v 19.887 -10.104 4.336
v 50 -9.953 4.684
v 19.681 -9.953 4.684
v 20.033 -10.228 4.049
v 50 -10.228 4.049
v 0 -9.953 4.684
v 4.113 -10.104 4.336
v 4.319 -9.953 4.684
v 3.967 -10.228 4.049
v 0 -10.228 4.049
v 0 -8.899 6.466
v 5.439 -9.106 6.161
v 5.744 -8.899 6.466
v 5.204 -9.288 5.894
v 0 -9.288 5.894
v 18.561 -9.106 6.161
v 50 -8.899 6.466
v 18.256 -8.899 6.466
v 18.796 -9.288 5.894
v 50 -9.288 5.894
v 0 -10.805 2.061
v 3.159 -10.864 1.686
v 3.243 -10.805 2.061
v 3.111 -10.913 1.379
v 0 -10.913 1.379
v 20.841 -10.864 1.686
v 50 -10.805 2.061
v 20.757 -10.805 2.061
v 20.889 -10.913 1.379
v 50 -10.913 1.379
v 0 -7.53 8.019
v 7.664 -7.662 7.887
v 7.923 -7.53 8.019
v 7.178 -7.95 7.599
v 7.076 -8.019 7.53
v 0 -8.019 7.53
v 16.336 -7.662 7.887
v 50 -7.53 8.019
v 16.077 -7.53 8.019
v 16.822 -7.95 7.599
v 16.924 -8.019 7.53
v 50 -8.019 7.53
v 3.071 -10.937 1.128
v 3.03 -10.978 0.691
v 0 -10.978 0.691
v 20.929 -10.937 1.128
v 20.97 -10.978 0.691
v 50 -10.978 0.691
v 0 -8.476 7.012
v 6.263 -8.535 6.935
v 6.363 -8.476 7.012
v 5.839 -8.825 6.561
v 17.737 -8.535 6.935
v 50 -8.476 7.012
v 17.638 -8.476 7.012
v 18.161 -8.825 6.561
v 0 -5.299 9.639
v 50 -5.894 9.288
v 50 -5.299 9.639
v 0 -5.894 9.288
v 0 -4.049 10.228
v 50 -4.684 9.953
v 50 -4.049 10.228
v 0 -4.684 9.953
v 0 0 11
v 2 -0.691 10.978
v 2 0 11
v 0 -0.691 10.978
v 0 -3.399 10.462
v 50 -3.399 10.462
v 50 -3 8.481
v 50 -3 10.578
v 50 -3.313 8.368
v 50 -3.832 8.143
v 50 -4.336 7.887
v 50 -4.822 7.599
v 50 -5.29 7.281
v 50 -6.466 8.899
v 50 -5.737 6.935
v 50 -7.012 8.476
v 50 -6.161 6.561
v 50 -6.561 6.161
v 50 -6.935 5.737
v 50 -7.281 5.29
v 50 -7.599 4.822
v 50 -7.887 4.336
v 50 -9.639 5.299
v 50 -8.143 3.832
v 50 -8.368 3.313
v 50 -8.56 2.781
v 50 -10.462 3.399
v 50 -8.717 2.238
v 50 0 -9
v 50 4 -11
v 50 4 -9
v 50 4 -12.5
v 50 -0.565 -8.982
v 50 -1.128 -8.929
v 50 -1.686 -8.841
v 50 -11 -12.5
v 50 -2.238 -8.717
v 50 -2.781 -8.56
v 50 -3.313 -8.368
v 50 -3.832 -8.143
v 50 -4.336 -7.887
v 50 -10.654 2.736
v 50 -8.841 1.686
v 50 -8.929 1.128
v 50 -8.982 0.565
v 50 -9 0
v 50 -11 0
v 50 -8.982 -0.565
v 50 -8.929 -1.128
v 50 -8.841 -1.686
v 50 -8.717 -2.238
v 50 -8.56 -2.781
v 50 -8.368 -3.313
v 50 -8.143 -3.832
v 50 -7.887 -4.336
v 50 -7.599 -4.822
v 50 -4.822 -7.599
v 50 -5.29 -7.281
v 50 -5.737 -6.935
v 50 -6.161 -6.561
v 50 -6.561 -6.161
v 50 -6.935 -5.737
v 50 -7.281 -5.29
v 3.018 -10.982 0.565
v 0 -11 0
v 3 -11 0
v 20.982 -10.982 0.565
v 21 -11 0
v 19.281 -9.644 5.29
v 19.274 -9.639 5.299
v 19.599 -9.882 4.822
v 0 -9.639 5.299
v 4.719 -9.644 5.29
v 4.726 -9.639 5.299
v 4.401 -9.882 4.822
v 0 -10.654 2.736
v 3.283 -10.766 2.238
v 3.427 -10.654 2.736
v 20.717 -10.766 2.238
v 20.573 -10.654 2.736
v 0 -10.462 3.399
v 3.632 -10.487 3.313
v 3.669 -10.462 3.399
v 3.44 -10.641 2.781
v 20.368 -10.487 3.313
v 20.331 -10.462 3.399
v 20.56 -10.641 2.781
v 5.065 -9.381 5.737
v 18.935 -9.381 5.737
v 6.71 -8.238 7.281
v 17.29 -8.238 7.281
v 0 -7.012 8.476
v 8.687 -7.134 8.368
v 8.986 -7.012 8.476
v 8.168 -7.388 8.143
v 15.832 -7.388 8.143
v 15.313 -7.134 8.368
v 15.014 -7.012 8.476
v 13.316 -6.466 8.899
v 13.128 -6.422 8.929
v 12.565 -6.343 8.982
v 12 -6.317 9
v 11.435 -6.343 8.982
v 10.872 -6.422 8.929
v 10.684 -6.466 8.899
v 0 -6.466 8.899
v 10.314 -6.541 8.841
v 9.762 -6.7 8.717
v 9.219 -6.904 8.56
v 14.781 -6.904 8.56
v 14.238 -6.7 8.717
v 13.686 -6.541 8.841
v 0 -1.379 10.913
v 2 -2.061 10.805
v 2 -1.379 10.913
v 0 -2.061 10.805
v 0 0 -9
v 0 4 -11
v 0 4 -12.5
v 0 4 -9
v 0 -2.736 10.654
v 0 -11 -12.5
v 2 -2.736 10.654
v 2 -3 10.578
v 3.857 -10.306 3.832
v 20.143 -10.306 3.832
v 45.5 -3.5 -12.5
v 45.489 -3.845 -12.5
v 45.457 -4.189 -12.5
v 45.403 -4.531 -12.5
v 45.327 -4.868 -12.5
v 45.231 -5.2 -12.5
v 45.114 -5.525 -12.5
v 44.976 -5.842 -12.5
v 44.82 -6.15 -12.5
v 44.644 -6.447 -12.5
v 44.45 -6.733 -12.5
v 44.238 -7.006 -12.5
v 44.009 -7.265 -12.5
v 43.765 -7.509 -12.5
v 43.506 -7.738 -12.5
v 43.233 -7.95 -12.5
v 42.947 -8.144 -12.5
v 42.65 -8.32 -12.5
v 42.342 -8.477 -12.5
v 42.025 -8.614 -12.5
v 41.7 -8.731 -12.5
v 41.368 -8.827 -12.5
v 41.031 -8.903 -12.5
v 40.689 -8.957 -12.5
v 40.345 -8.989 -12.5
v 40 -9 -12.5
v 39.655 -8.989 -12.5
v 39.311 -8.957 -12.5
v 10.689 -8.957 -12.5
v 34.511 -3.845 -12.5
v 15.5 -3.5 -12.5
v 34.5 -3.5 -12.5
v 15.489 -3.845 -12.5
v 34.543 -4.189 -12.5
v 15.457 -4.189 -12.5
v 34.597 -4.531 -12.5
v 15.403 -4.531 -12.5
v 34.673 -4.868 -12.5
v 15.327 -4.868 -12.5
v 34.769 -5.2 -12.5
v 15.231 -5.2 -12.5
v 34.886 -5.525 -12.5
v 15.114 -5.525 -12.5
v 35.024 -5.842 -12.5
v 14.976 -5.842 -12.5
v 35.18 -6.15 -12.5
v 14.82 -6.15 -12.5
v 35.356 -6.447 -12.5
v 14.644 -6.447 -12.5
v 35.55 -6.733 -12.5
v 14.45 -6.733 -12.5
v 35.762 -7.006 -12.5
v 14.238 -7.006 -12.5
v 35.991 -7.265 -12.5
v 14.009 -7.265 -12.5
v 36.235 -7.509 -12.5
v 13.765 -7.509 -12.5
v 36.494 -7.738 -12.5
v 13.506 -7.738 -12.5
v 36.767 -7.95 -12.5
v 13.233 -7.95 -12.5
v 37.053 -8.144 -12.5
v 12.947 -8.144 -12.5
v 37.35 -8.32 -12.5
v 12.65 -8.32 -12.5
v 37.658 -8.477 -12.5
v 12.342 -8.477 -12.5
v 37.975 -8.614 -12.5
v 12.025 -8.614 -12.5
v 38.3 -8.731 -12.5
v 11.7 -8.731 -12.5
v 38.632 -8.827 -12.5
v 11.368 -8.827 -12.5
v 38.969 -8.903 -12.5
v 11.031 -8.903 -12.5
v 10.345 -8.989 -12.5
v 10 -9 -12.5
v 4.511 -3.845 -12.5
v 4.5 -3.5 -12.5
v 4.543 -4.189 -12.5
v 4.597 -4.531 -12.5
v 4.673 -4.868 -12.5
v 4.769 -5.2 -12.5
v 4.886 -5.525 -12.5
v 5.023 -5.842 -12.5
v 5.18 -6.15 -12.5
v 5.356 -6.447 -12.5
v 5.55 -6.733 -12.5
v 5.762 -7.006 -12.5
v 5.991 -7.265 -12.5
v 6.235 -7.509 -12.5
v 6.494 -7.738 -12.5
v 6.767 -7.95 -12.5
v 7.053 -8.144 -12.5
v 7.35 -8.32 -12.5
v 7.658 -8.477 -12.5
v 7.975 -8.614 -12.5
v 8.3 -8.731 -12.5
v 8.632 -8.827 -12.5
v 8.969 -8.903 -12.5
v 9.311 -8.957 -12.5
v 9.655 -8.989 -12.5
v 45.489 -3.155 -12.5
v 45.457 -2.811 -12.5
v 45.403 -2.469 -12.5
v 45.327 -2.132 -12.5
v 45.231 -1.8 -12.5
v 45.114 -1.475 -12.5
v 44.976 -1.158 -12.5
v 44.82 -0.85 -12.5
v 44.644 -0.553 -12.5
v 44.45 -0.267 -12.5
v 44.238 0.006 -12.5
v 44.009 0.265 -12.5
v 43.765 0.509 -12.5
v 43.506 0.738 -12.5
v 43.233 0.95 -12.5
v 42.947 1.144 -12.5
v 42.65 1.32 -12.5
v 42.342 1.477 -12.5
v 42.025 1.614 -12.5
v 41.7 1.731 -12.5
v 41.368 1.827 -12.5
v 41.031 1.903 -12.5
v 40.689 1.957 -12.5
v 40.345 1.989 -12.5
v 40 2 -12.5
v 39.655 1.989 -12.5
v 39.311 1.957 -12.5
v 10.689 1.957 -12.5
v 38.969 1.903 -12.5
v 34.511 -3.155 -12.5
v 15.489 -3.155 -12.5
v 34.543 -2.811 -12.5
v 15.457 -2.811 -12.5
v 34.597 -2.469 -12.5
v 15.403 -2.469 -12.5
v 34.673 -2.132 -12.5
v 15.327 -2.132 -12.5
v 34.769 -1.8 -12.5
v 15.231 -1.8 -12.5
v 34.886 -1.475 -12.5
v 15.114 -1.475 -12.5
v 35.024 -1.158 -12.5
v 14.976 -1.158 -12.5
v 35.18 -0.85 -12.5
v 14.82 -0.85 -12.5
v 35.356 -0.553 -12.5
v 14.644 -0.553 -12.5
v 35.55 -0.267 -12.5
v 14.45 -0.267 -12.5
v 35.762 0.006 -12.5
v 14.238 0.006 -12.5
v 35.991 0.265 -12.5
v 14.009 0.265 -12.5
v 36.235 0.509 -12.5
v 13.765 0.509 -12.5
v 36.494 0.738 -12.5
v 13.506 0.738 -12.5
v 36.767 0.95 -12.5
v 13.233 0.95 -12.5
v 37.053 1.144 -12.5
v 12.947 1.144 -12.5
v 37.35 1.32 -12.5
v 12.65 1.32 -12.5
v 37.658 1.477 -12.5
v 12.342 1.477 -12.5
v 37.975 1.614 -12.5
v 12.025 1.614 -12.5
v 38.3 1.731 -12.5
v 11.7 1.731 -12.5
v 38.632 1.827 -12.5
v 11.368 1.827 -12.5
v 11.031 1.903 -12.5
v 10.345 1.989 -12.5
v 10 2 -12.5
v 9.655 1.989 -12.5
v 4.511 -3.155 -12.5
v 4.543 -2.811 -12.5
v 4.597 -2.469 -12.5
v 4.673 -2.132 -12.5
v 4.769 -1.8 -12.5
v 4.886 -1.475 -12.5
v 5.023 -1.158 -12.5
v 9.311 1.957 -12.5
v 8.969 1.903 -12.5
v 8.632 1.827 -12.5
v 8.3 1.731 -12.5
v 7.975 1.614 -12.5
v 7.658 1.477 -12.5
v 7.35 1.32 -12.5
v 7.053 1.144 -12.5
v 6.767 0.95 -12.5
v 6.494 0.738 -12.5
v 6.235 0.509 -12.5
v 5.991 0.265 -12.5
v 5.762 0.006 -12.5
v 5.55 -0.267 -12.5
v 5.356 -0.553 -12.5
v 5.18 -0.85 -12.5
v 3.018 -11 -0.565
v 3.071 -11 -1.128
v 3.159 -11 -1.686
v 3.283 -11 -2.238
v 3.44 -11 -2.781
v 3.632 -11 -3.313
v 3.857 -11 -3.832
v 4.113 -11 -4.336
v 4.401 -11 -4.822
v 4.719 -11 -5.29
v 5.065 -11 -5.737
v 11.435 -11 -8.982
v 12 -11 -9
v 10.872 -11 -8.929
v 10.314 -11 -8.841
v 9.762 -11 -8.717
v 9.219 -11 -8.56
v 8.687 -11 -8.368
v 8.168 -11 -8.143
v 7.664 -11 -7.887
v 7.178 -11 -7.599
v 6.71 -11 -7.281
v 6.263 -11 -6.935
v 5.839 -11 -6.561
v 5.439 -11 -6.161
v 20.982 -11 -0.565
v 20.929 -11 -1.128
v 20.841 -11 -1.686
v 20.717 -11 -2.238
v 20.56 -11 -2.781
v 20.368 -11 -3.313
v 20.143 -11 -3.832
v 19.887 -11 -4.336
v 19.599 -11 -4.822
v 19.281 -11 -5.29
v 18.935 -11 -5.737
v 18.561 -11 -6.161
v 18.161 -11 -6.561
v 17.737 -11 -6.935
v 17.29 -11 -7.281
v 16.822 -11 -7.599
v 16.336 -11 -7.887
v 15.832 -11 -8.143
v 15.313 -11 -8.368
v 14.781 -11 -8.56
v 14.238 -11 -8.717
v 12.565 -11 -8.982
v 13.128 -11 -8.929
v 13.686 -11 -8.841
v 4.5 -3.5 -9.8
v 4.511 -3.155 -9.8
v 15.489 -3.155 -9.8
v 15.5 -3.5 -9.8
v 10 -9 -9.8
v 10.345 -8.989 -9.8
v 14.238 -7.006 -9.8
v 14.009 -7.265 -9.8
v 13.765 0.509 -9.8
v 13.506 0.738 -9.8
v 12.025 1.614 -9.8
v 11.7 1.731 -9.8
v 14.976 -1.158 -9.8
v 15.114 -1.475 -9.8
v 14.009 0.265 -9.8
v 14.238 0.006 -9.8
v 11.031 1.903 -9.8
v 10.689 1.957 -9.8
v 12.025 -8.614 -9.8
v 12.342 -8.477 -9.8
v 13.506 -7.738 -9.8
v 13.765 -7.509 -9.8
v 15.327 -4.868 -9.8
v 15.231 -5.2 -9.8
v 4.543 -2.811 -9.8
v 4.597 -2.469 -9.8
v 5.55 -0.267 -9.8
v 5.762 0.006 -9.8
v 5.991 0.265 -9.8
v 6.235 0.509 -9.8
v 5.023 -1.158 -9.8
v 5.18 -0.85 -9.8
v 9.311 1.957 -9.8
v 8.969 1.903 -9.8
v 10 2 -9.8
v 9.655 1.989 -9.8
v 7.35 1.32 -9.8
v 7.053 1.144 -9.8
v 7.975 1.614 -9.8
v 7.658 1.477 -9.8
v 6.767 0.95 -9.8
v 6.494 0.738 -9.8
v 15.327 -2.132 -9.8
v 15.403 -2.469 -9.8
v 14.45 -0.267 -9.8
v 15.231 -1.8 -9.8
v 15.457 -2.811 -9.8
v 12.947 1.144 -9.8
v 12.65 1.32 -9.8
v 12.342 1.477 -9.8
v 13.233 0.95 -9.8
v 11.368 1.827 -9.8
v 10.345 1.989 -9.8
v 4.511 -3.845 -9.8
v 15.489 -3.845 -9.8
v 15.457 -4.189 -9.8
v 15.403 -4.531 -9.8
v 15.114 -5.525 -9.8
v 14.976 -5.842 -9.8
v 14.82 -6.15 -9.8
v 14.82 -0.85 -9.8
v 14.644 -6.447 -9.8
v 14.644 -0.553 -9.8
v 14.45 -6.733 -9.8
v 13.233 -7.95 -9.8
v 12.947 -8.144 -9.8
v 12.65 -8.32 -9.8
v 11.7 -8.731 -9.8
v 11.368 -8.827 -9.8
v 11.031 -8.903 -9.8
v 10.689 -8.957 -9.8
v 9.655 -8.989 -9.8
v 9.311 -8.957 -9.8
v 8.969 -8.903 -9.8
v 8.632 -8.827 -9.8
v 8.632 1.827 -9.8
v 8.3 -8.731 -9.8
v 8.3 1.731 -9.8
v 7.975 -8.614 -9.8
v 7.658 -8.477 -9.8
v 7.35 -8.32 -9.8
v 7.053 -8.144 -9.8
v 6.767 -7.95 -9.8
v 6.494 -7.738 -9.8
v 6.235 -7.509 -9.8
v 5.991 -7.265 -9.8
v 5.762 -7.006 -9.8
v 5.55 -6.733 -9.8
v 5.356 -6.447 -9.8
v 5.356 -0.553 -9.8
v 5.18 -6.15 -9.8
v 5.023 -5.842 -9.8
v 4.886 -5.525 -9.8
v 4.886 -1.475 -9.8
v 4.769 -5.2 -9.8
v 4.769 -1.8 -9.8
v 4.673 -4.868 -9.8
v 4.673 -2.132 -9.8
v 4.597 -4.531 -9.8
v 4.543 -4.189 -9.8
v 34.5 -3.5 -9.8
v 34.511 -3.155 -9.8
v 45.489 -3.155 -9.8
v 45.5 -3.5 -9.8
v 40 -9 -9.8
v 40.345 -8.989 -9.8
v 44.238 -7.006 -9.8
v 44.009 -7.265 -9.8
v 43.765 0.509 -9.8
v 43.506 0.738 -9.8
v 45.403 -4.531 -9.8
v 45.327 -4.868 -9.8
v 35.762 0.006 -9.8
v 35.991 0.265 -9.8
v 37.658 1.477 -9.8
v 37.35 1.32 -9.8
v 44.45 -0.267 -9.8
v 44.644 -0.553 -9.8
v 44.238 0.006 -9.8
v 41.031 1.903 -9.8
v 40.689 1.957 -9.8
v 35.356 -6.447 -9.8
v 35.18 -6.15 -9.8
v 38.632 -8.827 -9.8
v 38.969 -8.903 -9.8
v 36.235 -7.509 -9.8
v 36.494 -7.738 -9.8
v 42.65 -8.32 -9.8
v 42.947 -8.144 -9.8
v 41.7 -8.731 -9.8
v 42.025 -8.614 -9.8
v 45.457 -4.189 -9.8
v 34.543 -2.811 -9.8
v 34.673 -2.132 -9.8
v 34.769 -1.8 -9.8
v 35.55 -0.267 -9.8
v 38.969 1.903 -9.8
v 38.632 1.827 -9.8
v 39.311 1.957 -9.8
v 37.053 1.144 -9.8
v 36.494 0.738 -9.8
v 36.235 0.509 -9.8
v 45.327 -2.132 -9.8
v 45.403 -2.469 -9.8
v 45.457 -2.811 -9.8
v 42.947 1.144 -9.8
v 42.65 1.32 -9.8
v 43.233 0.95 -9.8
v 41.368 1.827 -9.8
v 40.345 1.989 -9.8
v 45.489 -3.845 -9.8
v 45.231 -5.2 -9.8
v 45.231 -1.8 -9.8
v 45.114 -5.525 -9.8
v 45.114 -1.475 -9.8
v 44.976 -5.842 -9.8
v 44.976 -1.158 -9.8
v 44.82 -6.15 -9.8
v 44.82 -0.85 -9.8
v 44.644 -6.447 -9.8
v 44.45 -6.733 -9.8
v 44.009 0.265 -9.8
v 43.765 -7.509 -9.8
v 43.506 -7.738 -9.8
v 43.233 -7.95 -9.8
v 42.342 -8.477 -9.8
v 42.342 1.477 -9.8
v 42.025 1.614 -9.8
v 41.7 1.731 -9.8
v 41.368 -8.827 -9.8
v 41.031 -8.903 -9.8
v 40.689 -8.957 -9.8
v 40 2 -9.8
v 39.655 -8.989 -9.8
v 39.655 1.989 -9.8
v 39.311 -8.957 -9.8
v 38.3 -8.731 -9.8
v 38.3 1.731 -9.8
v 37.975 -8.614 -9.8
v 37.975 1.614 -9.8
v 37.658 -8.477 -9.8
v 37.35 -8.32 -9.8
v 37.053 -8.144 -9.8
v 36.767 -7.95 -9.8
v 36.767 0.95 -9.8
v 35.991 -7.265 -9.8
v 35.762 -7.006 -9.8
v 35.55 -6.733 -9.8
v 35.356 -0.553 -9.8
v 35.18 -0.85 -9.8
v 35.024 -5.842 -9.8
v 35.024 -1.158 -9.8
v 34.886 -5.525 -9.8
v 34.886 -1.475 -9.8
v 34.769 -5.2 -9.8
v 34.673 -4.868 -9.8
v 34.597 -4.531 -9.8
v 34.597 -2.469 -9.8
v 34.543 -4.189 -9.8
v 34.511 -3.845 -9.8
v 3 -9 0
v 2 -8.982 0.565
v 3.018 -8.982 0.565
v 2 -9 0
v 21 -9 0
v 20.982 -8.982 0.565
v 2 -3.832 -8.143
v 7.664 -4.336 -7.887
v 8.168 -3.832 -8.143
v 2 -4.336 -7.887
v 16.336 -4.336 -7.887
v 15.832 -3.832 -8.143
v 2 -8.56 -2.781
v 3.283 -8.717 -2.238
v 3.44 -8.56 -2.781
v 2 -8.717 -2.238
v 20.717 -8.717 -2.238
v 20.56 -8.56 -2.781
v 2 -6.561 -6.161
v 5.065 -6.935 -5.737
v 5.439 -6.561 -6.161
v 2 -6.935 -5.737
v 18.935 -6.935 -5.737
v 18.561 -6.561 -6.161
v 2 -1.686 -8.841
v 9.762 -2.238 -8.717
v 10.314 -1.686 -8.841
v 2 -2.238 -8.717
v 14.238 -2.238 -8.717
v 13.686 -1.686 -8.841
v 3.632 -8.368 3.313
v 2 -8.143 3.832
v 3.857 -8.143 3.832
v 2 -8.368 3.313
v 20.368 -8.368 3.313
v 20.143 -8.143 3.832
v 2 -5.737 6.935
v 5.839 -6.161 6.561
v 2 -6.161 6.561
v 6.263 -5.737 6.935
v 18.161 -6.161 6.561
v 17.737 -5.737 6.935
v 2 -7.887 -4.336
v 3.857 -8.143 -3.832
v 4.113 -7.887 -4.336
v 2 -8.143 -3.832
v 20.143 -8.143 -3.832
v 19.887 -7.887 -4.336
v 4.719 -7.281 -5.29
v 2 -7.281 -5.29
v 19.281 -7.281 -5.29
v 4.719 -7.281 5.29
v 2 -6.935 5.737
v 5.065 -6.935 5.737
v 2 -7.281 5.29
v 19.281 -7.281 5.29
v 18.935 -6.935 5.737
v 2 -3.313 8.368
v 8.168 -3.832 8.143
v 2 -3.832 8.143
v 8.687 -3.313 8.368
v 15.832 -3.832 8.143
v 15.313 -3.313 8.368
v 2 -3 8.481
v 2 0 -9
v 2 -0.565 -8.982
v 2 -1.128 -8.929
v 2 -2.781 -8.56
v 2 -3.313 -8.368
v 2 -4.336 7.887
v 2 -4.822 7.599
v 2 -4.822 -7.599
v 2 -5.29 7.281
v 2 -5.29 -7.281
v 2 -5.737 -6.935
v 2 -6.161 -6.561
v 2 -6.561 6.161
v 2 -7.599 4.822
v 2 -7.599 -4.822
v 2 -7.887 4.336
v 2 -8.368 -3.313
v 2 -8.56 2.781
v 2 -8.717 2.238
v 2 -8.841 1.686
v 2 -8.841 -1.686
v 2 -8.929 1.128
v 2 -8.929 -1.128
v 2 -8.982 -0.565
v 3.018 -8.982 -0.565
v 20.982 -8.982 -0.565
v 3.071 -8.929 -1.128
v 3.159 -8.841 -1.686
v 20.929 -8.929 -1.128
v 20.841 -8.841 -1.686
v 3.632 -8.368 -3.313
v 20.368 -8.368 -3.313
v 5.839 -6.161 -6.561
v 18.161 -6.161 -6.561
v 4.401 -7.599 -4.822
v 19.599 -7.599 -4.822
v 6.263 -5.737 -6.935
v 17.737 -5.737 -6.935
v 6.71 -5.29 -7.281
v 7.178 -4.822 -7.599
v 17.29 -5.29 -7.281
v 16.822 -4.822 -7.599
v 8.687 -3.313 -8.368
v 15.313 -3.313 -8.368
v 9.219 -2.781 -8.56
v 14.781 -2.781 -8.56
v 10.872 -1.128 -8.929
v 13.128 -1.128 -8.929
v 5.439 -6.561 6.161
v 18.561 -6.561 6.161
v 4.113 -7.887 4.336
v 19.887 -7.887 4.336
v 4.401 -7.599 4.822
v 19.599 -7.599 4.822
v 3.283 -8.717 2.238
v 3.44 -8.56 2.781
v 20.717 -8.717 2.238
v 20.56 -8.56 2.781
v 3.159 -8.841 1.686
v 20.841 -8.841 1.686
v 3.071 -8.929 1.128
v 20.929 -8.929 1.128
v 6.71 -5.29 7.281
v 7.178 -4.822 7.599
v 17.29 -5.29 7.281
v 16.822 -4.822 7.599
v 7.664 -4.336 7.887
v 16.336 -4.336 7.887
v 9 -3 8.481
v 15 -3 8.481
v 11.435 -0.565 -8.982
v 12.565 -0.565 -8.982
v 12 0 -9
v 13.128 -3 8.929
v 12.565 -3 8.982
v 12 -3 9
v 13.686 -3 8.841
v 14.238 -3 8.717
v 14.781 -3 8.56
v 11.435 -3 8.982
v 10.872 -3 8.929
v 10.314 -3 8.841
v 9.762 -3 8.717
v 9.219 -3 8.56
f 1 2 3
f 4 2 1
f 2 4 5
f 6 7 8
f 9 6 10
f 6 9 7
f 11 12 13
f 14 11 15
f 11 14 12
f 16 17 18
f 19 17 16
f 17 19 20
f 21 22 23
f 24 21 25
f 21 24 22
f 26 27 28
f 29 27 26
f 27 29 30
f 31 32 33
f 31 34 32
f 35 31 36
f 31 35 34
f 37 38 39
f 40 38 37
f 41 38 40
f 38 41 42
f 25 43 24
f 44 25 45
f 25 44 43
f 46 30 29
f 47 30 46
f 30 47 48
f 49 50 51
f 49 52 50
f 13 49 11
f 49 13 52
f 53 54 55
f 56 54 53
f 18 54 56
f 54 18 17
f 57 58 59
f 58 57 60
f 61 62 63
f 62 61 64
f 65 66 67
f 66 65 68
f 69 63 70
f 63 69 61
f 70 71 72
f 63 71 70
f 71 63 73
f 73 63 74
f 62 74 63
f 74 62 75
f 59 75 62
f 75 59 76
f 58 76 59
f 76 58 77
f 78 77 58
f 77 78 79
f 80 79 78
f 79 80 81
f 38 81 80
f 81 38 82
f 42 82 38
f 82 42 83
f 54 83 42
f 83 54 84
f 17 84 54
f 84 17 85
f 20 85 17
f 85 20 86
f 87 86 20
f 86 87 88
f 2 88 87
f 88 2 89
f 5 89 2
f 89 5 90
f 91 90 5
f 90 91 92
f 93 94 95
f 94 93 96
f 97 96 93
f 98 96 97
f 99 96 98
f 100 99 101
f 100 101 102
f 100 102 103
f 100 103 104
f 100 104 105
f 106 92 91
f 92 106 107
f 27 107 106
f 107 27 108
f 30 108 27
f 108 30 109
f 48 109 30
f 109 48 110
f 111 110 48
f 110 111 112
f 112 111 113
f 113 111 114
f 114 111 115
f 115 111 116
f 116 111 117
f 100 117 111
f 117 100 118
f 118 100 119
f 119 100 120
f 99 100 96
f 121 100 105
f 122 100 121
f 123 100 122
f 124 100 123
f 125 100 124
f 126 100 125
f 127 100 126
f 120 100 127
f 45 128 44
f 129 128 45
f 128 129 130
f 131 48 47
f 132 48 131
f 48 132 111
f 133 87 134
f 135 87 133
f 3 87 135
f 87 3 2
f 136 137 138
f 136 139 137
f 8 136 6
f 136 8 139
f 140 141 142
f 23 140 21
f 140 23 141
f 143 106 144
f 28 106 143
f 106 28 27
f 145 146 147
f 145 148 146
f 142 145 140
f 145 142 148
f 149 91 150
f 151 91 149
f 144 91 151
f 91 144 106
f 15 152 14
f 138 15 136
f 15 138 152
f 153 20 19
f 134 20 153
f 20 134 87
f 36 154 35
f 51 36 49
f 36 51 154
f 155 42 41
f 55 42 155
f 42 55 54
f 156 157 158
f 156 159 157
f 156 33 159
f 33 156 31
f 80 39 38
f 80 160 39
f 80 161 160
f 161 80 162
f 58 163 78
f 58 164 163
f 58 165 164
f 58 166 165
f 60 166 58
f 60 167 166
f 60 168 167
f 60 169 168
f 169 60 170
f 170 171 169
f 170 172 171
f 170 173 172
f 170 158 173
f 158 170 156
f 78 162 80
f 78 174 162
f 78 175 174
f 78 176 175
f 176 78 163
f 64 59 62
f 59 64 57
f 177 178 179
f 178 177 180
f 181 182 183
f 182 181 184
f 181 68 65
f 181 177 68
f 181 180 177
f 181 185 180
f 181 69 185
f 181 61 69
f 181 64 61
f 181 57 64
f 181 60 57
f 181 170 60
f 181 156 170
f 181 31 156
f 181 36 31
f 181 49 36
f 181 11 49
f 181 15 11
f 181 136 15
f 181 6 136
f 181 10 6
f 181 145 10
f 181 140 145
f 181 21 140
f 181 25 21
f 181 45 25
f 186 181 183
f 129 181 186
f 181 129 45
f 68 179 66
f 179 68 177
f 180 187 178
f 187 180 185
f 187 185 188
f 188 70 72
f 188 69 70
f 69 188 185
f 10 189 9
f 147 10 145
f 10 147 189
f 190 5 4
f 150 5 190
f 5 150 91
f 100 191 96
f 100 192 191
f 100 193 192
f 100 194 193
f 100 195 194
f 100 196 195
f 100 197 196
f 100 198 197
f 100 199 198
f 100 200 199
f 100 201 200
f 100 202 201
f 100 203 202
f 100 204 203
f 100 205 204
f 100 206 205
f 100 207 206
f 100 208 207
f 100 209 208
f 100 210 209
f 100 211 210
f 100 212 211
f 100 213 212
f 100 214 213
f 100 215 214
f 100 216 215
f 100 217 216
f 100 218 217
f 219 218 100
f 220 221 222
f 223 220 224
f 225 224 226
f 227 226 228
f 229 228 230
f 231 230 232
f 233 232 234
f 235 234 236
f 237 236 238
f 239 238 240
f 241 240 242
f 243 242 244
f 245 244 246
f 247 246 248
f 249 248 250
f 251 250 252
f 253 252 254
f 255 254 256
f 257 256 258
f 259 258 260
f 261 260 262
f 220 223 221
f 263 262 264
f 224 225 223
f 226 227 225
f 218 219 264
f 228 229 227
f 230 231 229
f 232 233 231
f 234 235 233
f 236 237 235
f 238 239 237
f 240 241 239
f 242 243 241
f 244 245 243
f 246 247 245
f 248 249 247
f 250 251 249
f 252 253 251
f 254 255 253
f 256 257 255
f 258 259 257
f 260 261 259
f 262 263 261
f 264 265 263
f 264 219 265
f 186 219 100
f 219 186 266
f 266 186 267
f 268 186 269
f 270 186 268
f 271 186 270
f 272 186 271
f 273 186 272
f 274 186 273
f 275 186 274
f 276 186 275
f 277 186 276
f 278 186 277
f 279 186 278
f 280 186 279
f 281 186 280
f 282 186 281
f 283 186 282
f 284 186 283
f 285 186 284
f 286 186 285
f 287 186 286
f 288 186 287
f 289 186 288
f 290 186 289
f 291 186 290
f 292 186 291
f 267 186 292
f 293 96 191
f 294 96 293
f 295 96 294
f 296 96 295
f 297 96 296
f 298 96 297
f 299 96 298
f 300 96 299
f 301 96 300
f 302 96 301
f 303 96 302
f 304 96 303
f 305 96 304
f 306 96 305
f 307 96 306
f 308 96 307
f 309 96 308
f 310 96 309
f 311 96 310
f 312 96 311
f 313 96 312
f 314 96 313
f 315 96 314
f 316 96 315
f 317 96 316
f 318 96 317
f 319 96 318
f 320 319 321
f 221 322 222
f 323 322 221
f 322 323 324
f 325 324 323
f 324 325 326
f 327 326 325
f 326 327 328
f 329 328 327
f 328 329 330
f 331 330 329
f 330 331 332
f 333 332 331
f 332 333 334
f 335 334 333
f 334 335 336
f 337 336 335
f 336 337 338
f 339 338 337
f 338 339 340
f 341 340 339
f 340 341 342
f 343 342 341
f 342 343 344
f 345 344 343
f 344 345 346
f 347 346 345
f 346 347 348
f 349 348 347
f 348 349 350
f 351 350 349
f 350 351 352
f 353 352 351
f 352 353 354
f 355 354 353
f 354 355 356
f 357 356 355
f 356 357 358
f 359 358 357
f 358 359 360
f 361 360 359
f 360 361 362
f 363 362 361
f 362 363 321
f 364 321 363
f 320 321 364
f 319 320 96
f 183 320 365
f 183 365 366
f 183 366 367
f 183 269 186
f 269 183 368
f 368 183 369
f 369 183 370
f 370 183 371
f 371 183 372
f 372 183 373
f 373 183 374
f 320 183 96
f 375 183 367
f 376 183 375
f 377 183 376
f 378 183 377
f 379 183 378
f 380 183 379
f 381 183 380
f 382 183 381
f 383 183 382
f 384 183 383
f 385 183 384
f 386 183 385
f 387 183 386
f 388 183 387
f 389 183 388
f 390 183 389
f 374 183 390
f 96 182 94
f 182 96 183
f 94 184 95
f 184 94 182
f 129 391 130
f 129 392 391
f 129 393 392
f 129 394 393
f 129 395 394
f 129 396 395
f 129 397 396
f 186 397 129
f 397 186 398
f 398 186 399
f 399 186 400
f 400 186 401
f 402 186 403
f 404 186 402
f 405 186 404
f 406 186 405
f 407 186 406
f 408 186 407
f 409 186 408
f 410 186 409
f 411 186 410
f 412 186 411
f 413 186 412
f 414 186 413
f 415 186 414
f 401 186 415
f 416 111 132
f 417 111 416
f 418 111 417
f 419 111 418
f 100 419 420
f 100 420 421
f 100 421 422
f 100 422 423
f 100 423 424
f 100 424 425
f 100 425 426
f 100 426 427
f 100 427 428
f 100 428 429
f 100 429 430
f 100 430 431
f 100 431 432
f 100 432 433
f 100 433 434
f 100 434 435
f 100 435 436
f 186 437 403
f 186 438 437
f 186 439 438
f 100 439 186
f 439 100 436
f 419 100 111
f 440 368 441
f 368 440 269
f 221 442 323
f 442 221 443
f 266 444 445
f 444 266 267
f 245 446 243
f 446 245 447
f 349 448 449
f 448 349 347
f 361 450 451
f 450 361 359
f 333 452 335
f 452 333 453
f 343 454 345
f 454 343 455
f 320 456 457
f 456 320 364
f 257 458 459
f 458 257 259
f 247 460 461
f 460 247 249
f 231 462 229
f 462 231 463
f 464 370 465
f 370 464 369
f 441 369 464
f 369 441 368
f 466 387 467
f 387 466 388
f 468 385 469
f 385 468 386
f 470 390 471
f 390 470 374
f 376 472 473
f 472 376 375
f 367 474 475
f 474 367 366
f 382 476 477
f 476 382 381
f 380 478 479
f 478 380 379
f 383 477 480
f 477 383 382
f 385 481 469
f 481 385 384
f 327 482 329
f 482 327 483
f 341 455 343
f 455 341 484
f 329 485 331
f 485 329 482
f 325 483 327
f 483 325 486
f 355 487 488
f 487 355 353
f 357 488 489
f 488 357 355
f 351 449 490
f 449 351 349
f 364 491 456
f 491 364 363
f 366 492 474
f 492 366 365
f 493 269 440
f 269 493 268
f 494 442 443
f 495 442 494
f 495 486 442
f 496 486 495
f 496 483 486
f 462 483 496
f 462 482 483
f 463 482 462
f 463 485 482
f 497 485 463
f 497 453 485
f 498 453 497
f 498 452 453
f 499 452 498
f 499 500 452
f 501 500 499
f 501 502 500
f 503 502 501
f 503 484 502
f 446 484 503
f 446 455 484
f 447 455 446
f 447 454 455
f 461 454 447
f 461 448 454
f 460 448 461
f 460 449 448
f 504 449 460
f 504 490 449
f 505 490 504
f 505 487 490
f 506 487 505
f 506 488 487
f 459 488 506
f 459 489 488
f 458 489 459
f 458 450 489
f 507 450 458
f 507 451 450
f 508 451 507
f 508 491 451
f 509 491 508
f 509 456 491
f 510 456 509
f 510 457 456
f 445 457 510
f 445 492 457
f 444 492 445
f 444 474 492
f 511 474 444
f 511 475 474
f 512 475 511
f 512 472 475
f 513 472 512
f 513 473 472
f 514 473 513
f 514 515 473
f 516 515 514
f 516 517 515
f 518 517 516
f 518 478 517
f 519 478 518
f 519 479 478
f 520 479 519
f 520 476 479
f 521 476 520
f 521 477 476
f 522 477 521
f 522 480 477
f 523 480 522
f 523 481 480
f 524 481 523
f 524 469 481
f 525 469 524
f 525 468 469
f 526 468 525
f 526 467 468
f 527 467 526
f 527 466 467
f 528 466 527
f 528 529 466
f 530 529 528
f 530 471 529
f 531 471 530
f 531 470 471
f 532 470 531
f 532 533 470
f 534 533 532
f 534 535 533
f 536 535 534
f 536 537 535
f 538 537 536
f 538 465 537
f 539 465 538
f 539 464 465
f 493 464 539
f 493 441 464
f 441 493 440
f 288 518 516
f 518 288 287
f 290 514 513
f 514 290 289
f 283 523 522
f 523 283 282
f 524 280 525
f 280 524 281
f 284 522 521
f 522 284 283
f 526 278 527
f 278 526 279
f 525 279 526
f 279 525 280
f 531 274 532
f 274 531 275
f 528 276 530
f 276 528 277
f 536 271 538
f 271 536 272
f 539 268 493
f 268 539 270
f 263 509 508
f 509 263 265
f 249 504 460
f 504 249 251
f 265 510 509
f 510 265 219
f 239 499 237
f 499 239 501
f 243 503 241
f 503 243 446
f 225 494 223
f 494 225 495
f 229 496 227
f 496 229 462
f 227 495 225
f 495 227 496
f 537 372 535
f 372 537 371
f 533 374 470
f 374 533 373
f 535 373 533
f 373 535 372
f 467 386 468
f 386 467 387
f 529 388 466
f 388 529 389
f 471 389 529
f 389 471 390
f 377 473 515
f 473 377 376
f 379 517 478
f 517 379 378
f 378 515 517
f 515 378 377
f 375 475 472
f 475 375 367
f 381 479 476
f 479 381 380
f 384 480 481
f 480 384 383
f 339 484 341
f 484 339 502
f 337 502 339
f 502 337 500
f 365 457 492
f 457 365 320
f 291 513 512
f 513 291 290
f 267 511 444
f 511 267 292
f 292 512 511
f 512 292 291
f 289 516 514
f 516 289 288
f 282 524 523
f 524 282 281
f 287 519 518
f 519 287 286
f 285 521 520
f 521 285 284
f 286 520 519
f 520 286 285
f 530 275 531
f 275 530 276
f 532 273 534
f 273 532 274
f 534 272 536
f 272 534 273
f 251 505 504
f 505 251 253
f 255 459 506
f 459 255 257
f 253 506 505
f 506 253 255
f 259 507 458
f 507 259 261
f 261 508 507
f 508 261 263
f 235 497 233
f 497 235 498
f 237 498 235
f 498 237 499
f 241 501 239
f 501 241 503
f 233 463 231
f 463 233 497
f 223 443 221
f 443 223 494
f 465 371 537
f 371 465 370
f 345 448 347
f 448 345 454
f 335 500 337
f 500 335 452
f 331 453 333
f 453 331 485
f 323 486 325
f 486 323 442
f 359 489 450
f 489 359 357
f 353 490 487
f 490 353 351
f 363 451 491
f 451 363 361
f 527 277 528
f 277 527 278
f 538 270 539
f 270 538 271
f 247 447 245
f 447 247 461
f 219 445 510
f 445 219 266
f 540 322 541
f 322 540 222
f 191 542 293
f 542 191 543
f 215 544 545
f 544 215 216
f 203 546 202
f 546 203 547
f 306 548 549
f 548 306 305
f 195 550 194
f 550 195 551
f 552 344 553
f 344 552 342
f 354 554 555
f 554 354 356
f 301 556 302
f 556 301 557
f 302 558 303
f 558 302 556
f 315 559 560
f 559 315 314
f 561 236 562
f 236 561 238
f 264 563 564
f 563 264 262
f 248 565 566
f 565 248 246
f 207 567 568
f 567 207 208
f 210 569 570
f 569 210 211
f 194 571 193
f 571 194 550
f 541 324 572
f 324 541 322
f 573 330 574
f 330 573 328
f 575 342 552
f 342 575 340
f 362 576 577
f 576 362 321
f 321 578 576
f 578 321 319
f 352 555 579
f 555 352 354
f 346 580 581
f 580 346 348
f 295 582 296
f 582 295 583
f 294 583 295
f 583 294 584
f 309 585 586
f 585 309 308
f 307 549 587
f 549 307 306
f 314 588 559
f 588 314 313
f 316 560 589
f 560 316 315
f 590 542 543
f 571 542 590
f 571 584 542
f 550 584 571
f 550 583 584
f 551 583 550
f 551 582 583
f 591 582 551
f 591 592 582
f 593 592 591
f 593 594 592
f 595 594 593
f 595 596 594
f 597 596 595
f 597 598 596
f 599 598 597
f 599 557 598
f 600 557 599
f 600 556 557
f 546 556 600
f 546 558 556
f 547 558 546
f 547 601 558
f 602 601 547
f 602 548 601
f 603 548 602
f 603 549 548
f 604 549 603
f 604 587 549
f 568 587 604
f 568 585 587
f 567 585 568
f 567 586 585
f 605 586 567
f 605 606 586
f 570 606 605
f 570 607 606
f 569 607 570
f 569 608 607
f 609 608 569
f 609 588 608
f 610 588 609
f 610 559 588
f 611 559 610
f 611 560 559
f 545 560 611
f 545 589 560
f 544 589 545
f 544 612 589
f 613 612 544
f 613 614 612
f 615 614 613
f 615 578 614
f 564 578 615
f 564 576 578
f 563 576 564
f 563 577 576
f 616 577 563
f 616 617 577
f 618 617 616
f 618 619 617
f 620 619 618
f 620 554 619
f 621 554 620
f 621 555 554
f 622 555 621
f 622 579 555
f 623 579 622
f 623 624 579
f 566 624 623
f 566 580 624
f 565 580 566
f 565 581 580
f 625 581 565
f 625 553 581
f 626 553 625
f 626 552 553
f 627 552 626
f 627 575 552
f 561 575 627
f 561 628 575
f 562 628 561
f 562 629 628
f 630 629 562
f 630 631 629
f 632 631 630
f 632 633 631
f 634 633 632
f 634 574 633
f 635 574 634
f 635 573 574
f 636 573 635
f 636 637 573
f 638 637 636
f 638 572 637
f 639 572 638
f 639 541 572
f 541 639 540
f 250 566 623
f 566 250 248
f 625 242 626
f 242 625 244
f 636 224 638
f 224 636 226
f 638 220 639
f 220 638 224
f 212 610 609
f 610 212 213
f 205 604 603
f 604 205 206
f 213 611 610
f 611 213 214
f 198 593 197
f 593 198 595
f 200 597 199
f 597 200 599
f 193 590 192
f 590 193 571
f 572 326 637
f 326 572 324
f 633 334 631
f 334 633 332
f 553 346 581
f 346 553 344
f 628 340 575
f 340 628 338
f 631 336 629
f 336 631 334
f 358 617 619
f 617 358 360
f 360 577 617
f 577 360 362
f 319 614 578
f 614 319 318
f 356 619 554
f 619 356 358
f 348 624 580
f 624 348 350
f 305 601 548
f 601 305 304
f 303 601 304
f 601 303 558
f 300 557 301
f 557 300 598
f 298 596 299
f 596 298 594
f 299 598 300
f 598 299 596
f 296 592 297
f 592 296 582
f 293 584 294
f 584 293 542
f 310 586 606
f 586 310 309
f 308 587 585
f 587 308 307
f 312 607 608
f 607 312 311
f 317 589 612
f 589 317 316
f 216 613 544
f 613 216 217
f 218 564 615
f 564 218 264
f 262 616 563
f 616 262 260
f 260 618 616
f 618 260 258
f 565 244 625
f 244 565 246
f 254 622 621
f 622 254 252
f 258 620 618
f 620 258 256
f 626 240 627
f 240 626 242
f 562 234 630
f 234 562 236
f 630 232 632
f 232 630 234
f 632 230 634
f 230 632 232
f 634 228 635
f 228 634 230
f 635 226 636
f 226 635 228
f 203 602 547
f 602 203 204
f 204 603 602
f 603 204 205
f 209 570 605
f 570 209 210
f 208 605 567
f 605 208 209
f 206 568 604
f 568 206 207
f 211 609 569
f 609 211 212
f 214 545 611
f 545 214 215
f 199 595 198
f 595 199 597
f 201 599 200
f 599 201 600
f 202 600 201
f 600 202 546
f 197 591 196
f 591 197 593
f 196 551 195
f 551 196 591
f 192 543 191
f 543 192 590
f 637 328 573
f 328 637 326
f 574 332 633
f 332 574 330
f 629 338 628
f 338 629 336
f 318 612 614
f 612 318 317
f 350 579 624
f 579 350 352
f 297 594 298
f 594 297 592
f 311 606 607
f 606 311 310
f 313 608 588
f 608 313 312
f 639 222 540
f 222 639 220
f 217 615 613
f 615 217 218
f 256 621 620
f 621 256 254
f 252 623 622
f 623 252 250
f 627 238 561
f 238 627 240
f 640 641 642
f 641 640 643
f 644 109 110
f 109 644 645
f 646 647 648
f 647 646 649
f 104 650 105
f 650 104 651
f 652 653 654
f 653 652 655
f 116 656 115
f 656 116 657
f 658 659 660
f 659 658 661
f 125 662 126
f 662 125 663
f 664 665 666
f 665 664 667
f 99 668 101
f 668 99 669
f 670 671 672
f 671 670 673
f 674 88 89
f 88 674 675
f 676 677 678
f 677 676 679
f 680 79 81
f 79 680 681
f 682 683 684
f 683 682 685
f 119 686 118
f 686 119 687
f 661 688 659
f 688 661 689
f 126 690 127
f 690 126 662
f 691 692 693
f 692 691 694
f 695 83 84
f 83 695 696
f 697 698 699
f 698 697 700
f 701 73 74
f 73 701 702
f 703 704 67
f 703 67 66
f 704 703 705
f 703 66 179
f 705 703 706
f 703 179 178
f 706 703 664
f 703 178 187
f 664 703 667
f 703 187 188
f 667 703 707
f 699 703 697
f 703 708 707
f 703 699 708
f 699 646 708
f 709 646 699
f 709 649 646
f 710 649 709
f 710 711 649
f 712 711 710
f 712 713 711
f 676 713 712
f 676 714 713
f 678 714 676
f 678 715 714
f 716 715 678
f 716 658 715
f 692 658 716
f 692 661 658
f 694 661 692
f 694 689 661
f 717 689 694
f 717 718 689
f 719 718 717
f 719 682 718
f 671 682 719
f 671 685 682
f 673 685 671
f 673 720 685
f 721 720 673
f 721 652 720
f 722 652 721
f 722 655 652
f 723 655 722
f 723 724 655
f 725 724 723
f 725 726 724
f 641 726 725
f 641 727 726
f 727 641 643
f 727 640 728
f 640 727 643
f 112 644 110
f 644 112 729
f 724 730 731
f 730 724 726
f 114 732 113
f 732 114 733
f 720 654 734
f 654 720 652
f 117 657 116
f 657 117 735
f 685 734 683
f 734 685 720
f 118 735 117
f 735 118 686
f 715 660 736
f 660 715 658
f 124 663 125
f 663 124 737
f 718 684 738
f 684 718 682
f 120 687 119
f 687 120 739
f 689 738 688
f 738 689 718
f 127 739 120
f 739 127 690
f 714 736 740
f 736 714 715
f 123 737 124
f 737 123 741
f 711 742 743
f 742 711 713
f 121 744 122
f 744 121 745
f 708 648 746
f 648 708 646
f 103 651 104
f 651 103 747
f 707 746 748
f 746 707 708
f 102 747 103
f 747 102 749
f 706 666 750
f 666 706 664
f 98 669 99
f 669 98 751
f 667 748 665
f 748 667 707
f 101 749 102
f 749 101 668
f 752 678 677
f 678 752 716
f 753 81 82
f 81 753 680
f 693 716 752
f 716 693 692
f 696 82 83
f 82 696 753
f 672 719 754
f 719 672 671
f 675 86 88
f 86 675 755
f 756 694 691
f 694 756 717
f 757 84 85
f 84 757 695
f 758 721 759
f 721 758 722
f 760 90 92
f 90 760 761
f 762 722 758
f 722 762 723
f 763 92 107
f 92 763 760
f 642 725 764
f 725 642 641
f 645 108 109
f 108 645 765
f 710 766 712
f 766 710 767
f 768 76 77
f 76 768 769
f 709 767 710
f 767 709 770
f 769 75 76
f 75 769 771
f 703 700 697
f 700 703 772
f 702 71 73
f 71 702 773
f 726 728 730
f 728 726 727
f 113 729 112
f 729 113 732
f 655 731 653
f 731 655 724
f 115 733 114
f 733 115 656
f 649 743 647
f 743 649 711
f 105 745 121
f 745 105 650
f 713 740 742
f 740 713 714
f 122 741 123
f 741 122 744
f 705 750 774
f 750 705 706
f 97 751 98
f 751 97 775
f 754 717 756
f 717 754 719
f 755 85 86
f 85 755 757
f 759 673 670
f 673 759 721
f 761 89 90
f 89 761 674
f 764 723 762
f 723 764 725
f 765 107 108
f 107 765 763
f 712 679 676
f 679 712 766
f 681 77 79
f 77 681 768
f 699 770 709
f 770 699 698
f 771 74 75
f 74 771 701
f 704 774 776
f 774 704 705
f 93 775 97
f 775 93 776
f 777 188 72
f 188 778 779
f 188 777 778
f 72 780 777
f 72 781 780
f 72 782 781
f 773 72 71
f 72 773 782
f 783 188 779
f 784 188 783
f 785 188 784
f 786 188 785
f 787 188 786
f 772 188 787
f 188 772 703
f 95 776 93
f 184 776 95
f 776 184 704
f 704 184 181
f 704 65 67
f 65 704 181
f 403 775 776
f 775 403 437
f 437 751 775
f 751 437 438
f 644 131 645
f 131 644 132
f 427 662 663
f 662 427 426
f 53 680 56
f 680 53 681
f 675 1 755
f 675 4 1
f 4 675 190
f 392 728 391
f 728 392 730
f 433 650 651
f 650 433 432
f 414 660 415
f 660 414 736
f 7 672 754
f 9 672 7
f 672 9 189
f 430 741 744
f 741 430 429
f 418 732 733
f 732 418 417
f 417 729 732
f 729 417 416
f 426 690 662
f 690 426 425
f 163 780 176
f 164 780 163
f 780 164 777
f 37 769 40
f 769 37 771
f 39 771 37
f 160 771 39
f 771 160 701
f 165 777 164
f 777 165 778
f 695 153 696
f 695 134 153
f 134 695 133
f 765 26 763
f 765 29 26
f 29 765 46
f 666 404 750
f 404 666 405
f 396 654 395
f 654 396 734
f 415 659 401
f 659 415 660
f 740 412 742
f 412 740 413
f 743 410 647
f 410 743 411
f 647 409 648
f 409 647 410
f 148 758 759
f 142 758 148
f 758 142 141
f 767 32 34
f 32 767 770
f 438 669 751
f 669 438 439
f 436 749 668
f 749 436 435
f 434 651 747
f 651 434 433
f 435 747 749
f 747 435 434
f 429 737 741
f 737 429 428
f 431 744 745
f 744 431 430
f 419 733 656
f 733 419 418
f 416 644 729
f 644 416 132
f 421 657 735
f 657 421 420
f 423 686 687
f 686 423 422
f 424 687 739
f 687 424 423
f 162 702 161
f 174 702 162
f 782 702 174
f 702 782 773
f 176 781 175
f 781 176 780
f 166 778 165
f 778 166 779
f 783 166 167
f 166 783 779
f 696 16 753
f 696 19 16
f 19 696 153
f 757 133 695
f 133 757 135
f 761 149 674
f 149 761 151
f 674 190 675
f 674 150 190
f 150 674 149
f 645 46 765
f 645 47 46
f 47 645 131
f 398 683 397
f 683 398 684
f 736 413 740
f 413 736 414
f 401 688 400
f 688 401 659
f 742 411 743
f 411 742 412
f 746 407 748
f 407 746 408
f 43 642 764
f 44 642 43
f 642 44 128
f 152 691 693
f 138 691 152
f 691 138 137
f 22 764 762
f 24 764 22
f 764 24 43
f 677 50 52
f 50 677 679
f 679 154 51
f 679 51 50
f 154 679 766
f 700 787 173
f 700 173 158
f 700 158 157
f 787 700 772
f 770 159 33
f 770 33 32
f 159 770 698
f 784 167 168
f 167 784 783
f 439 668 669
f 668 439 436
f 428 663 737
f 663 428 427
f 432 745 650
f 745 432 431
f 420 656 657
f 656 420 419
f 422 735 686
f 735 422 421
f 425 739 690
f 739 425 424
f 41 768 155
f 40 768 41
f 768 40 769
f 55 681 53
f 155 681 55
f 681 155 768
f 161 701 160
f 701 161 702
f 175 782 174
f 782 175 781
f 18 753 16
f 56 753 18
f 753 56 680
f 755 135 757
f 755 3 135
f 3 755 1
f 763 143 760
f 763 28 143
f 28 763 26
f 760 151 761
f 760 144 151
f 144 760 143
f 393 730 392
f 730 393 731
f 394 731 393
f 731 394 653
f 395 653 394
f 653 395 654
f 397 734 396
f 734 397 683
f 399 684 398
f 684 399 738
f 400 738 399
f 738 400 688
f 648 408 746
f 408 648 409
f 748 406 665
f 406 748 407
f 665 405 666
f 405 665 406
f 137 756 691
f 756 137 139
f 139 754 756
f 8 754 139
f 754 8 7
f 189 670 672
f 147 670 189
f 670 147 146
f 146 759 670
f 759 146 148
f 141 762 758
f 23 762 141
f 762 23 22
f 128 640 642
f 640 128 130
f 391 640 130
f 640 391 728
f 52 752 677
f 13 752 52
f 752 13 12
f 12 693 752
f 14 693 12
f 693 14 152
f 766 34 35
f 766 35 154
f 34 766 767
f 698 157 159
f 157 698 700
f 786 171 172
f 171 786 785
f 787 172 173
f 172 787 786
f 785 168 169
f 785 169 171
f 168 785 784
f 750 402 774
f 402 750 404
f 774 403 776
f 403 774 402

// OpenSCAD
// Drop Left
//
// Copyright (c) 2020 Jan Pieper (jhpieper.github@gmail.com)
//
// This code is hosted at github.com/jhpieper/marble-run under the MIT license.
// The 3D objects (STL files) are also hosted on thingiverse.com under
// the Creative Commons Attribution 4.0 International (CC BY 4.0) license.
//
// Permission is hereby granted, free of charge, to any person obtaining a copy
// of this software and associated documentation files (the "Software"), to
// deal in the Software without restriction, including without limitation the
// rights to use, copy, modify, merge, publish, distribute, sublicense, and/or
// sell copies of the Software, and to permit persons to whom the Software is
// furnished to do so, subject to the following conditions:
//
// The above copyright notice and this permission notice shall be included in
// all copies or substantial portions of the Software.
//
// THE SOFTWARE IS PROVIDED "AS IS", WITHOUT WARRANTY OF ANY KIND, EXPRESS OR
// IMPLIED, INCLUDING BUT NOT LIMITED TO THE WARRANTIES OF MERCHANTABILITY,
// FITNESS FOR A PARTICULAR PURPOSE AND NONINFRINGEMENT. IN NO EVENT SHALL THE
// AUTHORS OR COPYRIGHT HOLDERS BE LIABLE FOR ANY CLAIM, DAMAGES OR OTHER
// LIABILITY, WHETHER IN AN ACTION OF CONTRACT, TORT OR OTHERWISE, ARISING
// FROM, OUT OF OR IN CONNECTION WITH THE SOFTWARE OR THE USE OR OTHER DEALINGS
// IN THE SOFTWARE.

length=50;  // Good sizes: 50, 110, 200 (in general: 5 + N*30).
magnet_radius = 5.5;  // Use 10x2mm magnets. 5.5 radius is good for hotglueing.  Use ~5 when just pushing magnets in.

$fn=100;
rotate(a=[0,90,0]) { // rotate for printing (magnet side down).
  difference() {
    union() {
      // Basic shape is just a cylinder and cube
      cylinder(r=11, h=length);
      translate([0,-11,0]) cube([12.5,15,length]);
    }
    // Carve inner trail
    translate([0,0,2])cylinder(r=9, h=length+2);
    // Remove upper parts of the cylinder tube
    translate([-11,-3,2]) cube([12,25,length+2]);
    translate([0,4,-1]) cube([11,25,length+2]);
    translate([-11,0,-1]) cube([20,25,length+2]);
    
    // drop hole
    translate([0,0,12]) rotate([90,0,0]) cylinder(h=20, r=9);

    // Magnet holes
    for (pos = [10:30:length]) {
      translate([9.8, -3.5, pos]) rotate(a=[0,90,0]) cylinder(h=3, r=magnet_radius);
    }
}
}
